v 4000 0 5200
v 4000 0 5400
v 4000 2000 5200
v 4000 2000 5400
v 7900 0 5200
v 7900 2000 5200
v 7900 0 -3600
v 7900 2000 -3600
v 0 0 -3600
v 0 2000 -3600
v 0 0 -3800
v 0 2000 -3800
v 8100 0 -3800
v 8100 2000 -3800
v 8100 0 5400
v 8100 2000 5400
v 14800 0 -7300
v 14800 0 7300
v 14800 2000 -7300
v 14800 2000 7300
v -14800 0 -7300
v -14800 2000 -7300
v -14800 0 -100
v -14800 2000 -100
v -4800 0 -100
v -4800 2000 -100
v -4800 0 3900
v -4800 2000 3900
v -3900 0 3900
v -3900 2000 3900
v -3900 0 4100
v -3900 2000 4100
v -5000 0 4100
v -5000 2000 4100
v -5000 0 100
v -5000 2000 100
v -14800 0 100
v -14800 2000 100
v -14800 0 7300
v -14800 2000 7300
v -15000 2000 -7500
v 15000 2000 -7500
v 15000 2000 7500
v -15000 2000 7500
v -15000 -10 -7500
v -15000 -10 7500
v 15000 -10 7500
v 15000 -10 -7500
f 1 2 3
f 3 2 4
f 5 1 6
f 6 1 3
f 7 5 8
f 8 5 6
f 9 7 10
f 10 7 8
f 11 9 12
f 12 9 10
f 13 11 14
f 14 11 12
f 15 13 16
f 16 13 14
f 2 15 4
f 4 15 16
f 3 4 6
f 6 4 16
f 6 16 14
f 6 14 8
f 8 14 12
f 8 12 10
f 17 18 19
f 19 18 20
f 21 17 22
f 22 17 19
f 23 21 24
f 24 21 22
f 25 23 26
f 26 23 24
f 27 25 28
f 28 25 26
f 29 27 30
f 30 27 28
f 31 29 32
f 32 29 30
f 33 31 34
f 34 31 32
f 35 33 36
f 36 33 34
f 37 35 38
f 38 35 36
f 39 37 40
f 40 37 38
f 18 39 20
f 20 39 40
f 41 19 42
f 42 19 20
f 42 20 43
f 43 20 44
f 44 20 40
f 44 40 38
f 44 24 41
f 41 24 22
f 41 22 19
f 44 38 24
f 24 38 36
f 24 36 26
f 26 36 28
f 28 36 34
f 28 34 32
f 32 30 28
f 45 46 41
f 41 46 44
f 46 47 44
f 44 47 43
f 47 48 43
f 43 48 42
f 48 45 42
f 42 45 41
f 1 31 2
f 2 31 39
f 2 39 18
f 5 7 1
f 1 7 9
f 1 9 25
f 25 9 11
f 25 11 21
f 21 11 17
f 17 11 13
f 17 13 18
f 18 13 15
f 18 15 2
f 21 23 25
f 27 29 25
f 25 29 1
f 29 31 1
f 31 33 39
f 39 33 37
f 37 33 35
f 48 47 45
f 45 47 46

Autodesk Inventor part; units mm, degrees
ref_plane "YZ Plane" through (0, 0, 0) normal (1, 0, 0) x (0, 1, 0)
ref_plane "XZ Plane" through (0, 0, 0) normal (0, 1, 0) x (-1, 0, 0)
ref_plane "XY Plane" through (0, 0, 0) normal (0, 0, 1) x (1, 0, 0)
sketch "Schizzo1" plane through (0, 0, 0) normal (0, 1, 0) x (-1, 0, 0)
  line L0 (-15000, 7500) -> (15000, 7500)
  line L1 (15000, 7500) -> (15000, -7500)
  line L2 (15000, -7500) -> (-15000, -7500)
  line L3 (-15000, -7500) -> (-15000, 7500)
  line L4 (-15000, 7500) -> (15000, -7500) construction
  line L5 (15000, 7500) -> (-15000, -7500) construction
  point P0 (0, 0)
  dimension "d0" = 30000
  dimension "d1" = 15000
extrude "Estrusione1" add sketch "Schizzo1" against normal blind 10
sketch "Schizzo2" plane through (0, 0, 0) normal (0, 1, 0) x (1, 0, 0)
  line L0 (15000, 7500) -> (-15000, 7500) projected
  line L1 (-15000, 7500) -> (-15000, -7500) projected
  line L2 (-15000, -7500) -> (15000, -7500) projected
  line L3 (15000, -7500) -> (15000, 7500) projected
  line L4 (-5000, -100) -> (-5000, -4100)
  line L5 (-5000, -4100) -> (-3900, -4100)
  line L6 (-4800, 100) -> (-4800, -3900)
  line L7 (-4800, -3900) -> (-3900, -3900)
  line L8 (-3900, -3900) -> (-3900, -4100)
  line L9 (0, 3800) -> (8100, 3800)
  line L10 (8100, 3800) -> (8100, -5400)
  line L11 (8100, -5400) -> (4000, -5400)
  line L12 (4000, -5200) -> (7900, -5200)
  line L13 (7900, -5200) -> (7900, 3600)
  line L14 (7900, 3600) -> (0, 3600)
  line L15 (0, 3800) -> (0, 3600)
  line L16 (4000, -5200) -> (4000, -5400)
  line L17 (-14800, 7300) -> (14800, 7300)
  line L18 (14800, 7300) -> (14800, -7300)
  line L19 (14800, -7300) -> (-14800, -7300)
  line L20 (-14800, -7300) -> (-14800, 7300)
  line L21 (-4800, 100) -> (-14800, 100)
  line L22 (-5000, -100) -> (-14800, -100)
  line L23 (-15000, 7500) -> (15000, 7500)
  line L24 (15000, 7500) -> (15000, -7500)
  line L25 (15000, -7500) -> (-15000, -7500)
  line L26 (-15000, -7500) -> (-15000, 7500)
  point P0 (0, 0)
extrude "Estrusione2" add sketch "Schizzo2" along normal blind 2000 contours L3 L2 L1 L0 | L22 L20 L21 L6 L7 L8 L5 L4 | L9 L10 L11 L16 L12 L13 L14 L15
properties part number "room"
